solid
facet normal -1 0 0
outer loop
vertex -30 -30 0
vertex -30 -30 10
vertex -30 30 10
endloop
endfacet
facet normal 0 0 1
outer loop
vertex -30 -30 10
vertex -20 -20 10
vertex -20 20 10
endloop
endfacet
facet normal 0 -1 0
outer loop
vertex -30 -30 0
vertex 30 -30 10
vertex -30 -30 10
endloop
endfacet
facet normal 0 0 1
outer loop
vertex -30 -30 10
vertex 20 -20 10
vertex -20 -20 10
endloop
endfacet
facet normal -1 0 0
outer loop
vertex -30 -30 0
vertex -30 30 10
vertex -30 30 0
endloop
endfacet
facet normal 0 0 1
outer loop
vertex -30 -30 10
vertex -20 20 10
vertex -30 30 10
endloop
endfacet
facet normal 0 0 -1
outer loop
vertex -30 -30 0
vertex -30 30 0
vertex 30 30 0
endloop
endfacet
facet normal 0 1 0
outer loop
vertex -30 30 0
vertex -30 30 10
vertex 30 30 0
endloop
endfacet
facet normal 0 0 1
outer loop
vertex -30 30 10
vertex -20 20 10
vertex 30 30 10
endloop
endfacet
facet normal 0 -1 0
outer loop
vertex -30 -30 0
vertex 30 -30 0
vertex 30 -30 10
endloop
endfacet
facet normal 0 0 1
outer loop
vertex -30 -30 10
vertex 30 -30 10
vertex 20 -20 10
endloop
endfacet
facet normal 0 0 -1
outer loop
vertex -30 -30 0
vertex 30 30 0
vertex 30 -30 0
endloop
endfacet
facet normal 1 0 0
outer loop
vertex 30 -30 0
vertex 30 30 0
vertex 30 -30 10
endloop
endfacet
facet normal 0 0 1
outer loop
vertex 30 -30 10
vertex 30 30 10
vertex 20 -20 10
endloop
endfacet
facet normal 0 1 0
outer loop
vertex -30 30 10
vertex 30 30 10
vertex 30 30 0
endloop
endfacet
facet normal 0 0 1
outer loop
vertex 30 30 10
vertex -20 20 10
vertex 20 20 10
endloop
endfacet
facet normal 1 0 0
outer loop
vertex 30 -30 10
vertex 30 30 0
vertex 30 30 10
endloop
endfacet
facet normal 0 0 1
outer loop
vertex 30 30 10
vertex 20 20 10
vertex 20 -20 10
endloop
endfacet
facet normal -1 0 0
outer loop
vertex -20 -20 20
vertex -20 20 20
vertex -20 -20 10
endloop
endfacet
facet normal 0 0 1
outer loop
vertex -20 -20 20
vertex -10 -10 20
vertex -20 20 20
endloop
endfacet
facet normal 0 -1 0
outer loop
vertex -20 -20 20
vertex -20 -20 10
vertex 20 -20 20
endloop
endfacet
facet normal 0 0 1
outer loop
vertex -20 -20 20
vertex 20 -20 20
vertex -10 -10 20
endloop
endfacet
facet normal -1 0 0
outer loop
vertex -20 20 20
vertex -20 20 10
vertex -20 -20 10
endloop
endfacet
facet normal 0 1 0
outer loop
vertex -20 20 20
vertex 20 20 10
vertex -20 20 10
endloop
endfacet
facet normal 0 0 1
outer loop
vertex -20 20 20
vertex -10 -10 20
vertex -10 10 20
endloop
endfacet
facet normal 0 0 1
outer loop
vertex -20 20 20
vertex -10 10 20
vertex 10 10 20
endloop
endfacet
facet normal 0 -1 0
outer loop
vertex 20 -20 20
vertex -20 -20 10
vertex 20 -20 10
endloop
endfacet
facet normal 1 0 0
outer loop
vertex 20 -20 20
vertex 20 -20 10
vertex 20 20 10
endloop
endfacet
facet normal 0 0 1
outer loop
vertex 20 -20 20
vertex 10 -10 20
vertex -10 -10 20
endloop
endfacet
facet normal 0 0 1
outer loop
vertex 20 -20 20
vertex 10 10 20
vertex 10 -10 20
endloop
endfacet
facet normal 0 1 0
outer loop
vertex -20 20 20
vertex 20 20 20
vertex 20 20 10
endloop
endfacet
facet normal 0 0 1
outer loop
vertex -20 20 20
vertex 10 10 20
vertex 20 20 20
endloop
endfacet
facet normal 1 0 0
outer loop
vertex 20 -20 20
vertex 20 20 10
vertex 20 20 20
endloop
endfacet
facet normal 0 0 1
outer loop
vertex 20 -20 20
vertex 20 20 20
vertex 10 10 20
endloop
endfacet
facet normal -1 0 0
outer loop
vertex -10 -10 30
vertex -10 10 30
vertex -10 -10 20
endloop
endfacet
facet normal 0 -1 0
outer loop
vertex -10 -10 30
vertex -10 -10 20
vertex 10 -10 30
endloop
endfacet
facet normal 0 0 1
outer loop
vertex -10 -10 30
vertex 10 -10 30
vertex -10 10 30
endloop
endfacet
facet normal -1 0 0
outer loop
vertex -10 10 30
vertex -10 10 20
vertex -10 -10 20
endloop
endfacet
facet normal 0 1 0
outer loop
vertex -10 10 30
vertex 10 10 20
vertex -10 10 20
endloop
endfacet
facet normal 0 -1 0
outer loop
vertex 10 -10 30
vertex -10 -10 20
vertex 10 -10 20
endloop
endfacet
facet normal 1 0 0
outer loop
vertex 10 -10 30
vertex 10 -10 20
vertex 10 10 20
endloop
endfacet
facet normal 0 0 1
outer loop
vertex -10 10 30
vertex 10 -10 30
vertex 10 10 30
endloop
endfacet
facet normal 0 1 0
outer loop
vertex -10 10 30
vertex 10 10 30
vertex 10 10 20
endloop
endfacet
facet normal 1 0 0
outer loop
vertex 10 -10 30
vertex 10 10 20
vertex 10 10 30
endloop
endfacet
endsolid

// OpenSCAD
union() {
    translate([0, 0, 5]) cube([60, 60, 10], center = true);
    translate([0, 0, 15]) cube([40, 40, 10], center = true);
    translate([0, 0, 25]) cube([20, 20, 10], center = true);
}
